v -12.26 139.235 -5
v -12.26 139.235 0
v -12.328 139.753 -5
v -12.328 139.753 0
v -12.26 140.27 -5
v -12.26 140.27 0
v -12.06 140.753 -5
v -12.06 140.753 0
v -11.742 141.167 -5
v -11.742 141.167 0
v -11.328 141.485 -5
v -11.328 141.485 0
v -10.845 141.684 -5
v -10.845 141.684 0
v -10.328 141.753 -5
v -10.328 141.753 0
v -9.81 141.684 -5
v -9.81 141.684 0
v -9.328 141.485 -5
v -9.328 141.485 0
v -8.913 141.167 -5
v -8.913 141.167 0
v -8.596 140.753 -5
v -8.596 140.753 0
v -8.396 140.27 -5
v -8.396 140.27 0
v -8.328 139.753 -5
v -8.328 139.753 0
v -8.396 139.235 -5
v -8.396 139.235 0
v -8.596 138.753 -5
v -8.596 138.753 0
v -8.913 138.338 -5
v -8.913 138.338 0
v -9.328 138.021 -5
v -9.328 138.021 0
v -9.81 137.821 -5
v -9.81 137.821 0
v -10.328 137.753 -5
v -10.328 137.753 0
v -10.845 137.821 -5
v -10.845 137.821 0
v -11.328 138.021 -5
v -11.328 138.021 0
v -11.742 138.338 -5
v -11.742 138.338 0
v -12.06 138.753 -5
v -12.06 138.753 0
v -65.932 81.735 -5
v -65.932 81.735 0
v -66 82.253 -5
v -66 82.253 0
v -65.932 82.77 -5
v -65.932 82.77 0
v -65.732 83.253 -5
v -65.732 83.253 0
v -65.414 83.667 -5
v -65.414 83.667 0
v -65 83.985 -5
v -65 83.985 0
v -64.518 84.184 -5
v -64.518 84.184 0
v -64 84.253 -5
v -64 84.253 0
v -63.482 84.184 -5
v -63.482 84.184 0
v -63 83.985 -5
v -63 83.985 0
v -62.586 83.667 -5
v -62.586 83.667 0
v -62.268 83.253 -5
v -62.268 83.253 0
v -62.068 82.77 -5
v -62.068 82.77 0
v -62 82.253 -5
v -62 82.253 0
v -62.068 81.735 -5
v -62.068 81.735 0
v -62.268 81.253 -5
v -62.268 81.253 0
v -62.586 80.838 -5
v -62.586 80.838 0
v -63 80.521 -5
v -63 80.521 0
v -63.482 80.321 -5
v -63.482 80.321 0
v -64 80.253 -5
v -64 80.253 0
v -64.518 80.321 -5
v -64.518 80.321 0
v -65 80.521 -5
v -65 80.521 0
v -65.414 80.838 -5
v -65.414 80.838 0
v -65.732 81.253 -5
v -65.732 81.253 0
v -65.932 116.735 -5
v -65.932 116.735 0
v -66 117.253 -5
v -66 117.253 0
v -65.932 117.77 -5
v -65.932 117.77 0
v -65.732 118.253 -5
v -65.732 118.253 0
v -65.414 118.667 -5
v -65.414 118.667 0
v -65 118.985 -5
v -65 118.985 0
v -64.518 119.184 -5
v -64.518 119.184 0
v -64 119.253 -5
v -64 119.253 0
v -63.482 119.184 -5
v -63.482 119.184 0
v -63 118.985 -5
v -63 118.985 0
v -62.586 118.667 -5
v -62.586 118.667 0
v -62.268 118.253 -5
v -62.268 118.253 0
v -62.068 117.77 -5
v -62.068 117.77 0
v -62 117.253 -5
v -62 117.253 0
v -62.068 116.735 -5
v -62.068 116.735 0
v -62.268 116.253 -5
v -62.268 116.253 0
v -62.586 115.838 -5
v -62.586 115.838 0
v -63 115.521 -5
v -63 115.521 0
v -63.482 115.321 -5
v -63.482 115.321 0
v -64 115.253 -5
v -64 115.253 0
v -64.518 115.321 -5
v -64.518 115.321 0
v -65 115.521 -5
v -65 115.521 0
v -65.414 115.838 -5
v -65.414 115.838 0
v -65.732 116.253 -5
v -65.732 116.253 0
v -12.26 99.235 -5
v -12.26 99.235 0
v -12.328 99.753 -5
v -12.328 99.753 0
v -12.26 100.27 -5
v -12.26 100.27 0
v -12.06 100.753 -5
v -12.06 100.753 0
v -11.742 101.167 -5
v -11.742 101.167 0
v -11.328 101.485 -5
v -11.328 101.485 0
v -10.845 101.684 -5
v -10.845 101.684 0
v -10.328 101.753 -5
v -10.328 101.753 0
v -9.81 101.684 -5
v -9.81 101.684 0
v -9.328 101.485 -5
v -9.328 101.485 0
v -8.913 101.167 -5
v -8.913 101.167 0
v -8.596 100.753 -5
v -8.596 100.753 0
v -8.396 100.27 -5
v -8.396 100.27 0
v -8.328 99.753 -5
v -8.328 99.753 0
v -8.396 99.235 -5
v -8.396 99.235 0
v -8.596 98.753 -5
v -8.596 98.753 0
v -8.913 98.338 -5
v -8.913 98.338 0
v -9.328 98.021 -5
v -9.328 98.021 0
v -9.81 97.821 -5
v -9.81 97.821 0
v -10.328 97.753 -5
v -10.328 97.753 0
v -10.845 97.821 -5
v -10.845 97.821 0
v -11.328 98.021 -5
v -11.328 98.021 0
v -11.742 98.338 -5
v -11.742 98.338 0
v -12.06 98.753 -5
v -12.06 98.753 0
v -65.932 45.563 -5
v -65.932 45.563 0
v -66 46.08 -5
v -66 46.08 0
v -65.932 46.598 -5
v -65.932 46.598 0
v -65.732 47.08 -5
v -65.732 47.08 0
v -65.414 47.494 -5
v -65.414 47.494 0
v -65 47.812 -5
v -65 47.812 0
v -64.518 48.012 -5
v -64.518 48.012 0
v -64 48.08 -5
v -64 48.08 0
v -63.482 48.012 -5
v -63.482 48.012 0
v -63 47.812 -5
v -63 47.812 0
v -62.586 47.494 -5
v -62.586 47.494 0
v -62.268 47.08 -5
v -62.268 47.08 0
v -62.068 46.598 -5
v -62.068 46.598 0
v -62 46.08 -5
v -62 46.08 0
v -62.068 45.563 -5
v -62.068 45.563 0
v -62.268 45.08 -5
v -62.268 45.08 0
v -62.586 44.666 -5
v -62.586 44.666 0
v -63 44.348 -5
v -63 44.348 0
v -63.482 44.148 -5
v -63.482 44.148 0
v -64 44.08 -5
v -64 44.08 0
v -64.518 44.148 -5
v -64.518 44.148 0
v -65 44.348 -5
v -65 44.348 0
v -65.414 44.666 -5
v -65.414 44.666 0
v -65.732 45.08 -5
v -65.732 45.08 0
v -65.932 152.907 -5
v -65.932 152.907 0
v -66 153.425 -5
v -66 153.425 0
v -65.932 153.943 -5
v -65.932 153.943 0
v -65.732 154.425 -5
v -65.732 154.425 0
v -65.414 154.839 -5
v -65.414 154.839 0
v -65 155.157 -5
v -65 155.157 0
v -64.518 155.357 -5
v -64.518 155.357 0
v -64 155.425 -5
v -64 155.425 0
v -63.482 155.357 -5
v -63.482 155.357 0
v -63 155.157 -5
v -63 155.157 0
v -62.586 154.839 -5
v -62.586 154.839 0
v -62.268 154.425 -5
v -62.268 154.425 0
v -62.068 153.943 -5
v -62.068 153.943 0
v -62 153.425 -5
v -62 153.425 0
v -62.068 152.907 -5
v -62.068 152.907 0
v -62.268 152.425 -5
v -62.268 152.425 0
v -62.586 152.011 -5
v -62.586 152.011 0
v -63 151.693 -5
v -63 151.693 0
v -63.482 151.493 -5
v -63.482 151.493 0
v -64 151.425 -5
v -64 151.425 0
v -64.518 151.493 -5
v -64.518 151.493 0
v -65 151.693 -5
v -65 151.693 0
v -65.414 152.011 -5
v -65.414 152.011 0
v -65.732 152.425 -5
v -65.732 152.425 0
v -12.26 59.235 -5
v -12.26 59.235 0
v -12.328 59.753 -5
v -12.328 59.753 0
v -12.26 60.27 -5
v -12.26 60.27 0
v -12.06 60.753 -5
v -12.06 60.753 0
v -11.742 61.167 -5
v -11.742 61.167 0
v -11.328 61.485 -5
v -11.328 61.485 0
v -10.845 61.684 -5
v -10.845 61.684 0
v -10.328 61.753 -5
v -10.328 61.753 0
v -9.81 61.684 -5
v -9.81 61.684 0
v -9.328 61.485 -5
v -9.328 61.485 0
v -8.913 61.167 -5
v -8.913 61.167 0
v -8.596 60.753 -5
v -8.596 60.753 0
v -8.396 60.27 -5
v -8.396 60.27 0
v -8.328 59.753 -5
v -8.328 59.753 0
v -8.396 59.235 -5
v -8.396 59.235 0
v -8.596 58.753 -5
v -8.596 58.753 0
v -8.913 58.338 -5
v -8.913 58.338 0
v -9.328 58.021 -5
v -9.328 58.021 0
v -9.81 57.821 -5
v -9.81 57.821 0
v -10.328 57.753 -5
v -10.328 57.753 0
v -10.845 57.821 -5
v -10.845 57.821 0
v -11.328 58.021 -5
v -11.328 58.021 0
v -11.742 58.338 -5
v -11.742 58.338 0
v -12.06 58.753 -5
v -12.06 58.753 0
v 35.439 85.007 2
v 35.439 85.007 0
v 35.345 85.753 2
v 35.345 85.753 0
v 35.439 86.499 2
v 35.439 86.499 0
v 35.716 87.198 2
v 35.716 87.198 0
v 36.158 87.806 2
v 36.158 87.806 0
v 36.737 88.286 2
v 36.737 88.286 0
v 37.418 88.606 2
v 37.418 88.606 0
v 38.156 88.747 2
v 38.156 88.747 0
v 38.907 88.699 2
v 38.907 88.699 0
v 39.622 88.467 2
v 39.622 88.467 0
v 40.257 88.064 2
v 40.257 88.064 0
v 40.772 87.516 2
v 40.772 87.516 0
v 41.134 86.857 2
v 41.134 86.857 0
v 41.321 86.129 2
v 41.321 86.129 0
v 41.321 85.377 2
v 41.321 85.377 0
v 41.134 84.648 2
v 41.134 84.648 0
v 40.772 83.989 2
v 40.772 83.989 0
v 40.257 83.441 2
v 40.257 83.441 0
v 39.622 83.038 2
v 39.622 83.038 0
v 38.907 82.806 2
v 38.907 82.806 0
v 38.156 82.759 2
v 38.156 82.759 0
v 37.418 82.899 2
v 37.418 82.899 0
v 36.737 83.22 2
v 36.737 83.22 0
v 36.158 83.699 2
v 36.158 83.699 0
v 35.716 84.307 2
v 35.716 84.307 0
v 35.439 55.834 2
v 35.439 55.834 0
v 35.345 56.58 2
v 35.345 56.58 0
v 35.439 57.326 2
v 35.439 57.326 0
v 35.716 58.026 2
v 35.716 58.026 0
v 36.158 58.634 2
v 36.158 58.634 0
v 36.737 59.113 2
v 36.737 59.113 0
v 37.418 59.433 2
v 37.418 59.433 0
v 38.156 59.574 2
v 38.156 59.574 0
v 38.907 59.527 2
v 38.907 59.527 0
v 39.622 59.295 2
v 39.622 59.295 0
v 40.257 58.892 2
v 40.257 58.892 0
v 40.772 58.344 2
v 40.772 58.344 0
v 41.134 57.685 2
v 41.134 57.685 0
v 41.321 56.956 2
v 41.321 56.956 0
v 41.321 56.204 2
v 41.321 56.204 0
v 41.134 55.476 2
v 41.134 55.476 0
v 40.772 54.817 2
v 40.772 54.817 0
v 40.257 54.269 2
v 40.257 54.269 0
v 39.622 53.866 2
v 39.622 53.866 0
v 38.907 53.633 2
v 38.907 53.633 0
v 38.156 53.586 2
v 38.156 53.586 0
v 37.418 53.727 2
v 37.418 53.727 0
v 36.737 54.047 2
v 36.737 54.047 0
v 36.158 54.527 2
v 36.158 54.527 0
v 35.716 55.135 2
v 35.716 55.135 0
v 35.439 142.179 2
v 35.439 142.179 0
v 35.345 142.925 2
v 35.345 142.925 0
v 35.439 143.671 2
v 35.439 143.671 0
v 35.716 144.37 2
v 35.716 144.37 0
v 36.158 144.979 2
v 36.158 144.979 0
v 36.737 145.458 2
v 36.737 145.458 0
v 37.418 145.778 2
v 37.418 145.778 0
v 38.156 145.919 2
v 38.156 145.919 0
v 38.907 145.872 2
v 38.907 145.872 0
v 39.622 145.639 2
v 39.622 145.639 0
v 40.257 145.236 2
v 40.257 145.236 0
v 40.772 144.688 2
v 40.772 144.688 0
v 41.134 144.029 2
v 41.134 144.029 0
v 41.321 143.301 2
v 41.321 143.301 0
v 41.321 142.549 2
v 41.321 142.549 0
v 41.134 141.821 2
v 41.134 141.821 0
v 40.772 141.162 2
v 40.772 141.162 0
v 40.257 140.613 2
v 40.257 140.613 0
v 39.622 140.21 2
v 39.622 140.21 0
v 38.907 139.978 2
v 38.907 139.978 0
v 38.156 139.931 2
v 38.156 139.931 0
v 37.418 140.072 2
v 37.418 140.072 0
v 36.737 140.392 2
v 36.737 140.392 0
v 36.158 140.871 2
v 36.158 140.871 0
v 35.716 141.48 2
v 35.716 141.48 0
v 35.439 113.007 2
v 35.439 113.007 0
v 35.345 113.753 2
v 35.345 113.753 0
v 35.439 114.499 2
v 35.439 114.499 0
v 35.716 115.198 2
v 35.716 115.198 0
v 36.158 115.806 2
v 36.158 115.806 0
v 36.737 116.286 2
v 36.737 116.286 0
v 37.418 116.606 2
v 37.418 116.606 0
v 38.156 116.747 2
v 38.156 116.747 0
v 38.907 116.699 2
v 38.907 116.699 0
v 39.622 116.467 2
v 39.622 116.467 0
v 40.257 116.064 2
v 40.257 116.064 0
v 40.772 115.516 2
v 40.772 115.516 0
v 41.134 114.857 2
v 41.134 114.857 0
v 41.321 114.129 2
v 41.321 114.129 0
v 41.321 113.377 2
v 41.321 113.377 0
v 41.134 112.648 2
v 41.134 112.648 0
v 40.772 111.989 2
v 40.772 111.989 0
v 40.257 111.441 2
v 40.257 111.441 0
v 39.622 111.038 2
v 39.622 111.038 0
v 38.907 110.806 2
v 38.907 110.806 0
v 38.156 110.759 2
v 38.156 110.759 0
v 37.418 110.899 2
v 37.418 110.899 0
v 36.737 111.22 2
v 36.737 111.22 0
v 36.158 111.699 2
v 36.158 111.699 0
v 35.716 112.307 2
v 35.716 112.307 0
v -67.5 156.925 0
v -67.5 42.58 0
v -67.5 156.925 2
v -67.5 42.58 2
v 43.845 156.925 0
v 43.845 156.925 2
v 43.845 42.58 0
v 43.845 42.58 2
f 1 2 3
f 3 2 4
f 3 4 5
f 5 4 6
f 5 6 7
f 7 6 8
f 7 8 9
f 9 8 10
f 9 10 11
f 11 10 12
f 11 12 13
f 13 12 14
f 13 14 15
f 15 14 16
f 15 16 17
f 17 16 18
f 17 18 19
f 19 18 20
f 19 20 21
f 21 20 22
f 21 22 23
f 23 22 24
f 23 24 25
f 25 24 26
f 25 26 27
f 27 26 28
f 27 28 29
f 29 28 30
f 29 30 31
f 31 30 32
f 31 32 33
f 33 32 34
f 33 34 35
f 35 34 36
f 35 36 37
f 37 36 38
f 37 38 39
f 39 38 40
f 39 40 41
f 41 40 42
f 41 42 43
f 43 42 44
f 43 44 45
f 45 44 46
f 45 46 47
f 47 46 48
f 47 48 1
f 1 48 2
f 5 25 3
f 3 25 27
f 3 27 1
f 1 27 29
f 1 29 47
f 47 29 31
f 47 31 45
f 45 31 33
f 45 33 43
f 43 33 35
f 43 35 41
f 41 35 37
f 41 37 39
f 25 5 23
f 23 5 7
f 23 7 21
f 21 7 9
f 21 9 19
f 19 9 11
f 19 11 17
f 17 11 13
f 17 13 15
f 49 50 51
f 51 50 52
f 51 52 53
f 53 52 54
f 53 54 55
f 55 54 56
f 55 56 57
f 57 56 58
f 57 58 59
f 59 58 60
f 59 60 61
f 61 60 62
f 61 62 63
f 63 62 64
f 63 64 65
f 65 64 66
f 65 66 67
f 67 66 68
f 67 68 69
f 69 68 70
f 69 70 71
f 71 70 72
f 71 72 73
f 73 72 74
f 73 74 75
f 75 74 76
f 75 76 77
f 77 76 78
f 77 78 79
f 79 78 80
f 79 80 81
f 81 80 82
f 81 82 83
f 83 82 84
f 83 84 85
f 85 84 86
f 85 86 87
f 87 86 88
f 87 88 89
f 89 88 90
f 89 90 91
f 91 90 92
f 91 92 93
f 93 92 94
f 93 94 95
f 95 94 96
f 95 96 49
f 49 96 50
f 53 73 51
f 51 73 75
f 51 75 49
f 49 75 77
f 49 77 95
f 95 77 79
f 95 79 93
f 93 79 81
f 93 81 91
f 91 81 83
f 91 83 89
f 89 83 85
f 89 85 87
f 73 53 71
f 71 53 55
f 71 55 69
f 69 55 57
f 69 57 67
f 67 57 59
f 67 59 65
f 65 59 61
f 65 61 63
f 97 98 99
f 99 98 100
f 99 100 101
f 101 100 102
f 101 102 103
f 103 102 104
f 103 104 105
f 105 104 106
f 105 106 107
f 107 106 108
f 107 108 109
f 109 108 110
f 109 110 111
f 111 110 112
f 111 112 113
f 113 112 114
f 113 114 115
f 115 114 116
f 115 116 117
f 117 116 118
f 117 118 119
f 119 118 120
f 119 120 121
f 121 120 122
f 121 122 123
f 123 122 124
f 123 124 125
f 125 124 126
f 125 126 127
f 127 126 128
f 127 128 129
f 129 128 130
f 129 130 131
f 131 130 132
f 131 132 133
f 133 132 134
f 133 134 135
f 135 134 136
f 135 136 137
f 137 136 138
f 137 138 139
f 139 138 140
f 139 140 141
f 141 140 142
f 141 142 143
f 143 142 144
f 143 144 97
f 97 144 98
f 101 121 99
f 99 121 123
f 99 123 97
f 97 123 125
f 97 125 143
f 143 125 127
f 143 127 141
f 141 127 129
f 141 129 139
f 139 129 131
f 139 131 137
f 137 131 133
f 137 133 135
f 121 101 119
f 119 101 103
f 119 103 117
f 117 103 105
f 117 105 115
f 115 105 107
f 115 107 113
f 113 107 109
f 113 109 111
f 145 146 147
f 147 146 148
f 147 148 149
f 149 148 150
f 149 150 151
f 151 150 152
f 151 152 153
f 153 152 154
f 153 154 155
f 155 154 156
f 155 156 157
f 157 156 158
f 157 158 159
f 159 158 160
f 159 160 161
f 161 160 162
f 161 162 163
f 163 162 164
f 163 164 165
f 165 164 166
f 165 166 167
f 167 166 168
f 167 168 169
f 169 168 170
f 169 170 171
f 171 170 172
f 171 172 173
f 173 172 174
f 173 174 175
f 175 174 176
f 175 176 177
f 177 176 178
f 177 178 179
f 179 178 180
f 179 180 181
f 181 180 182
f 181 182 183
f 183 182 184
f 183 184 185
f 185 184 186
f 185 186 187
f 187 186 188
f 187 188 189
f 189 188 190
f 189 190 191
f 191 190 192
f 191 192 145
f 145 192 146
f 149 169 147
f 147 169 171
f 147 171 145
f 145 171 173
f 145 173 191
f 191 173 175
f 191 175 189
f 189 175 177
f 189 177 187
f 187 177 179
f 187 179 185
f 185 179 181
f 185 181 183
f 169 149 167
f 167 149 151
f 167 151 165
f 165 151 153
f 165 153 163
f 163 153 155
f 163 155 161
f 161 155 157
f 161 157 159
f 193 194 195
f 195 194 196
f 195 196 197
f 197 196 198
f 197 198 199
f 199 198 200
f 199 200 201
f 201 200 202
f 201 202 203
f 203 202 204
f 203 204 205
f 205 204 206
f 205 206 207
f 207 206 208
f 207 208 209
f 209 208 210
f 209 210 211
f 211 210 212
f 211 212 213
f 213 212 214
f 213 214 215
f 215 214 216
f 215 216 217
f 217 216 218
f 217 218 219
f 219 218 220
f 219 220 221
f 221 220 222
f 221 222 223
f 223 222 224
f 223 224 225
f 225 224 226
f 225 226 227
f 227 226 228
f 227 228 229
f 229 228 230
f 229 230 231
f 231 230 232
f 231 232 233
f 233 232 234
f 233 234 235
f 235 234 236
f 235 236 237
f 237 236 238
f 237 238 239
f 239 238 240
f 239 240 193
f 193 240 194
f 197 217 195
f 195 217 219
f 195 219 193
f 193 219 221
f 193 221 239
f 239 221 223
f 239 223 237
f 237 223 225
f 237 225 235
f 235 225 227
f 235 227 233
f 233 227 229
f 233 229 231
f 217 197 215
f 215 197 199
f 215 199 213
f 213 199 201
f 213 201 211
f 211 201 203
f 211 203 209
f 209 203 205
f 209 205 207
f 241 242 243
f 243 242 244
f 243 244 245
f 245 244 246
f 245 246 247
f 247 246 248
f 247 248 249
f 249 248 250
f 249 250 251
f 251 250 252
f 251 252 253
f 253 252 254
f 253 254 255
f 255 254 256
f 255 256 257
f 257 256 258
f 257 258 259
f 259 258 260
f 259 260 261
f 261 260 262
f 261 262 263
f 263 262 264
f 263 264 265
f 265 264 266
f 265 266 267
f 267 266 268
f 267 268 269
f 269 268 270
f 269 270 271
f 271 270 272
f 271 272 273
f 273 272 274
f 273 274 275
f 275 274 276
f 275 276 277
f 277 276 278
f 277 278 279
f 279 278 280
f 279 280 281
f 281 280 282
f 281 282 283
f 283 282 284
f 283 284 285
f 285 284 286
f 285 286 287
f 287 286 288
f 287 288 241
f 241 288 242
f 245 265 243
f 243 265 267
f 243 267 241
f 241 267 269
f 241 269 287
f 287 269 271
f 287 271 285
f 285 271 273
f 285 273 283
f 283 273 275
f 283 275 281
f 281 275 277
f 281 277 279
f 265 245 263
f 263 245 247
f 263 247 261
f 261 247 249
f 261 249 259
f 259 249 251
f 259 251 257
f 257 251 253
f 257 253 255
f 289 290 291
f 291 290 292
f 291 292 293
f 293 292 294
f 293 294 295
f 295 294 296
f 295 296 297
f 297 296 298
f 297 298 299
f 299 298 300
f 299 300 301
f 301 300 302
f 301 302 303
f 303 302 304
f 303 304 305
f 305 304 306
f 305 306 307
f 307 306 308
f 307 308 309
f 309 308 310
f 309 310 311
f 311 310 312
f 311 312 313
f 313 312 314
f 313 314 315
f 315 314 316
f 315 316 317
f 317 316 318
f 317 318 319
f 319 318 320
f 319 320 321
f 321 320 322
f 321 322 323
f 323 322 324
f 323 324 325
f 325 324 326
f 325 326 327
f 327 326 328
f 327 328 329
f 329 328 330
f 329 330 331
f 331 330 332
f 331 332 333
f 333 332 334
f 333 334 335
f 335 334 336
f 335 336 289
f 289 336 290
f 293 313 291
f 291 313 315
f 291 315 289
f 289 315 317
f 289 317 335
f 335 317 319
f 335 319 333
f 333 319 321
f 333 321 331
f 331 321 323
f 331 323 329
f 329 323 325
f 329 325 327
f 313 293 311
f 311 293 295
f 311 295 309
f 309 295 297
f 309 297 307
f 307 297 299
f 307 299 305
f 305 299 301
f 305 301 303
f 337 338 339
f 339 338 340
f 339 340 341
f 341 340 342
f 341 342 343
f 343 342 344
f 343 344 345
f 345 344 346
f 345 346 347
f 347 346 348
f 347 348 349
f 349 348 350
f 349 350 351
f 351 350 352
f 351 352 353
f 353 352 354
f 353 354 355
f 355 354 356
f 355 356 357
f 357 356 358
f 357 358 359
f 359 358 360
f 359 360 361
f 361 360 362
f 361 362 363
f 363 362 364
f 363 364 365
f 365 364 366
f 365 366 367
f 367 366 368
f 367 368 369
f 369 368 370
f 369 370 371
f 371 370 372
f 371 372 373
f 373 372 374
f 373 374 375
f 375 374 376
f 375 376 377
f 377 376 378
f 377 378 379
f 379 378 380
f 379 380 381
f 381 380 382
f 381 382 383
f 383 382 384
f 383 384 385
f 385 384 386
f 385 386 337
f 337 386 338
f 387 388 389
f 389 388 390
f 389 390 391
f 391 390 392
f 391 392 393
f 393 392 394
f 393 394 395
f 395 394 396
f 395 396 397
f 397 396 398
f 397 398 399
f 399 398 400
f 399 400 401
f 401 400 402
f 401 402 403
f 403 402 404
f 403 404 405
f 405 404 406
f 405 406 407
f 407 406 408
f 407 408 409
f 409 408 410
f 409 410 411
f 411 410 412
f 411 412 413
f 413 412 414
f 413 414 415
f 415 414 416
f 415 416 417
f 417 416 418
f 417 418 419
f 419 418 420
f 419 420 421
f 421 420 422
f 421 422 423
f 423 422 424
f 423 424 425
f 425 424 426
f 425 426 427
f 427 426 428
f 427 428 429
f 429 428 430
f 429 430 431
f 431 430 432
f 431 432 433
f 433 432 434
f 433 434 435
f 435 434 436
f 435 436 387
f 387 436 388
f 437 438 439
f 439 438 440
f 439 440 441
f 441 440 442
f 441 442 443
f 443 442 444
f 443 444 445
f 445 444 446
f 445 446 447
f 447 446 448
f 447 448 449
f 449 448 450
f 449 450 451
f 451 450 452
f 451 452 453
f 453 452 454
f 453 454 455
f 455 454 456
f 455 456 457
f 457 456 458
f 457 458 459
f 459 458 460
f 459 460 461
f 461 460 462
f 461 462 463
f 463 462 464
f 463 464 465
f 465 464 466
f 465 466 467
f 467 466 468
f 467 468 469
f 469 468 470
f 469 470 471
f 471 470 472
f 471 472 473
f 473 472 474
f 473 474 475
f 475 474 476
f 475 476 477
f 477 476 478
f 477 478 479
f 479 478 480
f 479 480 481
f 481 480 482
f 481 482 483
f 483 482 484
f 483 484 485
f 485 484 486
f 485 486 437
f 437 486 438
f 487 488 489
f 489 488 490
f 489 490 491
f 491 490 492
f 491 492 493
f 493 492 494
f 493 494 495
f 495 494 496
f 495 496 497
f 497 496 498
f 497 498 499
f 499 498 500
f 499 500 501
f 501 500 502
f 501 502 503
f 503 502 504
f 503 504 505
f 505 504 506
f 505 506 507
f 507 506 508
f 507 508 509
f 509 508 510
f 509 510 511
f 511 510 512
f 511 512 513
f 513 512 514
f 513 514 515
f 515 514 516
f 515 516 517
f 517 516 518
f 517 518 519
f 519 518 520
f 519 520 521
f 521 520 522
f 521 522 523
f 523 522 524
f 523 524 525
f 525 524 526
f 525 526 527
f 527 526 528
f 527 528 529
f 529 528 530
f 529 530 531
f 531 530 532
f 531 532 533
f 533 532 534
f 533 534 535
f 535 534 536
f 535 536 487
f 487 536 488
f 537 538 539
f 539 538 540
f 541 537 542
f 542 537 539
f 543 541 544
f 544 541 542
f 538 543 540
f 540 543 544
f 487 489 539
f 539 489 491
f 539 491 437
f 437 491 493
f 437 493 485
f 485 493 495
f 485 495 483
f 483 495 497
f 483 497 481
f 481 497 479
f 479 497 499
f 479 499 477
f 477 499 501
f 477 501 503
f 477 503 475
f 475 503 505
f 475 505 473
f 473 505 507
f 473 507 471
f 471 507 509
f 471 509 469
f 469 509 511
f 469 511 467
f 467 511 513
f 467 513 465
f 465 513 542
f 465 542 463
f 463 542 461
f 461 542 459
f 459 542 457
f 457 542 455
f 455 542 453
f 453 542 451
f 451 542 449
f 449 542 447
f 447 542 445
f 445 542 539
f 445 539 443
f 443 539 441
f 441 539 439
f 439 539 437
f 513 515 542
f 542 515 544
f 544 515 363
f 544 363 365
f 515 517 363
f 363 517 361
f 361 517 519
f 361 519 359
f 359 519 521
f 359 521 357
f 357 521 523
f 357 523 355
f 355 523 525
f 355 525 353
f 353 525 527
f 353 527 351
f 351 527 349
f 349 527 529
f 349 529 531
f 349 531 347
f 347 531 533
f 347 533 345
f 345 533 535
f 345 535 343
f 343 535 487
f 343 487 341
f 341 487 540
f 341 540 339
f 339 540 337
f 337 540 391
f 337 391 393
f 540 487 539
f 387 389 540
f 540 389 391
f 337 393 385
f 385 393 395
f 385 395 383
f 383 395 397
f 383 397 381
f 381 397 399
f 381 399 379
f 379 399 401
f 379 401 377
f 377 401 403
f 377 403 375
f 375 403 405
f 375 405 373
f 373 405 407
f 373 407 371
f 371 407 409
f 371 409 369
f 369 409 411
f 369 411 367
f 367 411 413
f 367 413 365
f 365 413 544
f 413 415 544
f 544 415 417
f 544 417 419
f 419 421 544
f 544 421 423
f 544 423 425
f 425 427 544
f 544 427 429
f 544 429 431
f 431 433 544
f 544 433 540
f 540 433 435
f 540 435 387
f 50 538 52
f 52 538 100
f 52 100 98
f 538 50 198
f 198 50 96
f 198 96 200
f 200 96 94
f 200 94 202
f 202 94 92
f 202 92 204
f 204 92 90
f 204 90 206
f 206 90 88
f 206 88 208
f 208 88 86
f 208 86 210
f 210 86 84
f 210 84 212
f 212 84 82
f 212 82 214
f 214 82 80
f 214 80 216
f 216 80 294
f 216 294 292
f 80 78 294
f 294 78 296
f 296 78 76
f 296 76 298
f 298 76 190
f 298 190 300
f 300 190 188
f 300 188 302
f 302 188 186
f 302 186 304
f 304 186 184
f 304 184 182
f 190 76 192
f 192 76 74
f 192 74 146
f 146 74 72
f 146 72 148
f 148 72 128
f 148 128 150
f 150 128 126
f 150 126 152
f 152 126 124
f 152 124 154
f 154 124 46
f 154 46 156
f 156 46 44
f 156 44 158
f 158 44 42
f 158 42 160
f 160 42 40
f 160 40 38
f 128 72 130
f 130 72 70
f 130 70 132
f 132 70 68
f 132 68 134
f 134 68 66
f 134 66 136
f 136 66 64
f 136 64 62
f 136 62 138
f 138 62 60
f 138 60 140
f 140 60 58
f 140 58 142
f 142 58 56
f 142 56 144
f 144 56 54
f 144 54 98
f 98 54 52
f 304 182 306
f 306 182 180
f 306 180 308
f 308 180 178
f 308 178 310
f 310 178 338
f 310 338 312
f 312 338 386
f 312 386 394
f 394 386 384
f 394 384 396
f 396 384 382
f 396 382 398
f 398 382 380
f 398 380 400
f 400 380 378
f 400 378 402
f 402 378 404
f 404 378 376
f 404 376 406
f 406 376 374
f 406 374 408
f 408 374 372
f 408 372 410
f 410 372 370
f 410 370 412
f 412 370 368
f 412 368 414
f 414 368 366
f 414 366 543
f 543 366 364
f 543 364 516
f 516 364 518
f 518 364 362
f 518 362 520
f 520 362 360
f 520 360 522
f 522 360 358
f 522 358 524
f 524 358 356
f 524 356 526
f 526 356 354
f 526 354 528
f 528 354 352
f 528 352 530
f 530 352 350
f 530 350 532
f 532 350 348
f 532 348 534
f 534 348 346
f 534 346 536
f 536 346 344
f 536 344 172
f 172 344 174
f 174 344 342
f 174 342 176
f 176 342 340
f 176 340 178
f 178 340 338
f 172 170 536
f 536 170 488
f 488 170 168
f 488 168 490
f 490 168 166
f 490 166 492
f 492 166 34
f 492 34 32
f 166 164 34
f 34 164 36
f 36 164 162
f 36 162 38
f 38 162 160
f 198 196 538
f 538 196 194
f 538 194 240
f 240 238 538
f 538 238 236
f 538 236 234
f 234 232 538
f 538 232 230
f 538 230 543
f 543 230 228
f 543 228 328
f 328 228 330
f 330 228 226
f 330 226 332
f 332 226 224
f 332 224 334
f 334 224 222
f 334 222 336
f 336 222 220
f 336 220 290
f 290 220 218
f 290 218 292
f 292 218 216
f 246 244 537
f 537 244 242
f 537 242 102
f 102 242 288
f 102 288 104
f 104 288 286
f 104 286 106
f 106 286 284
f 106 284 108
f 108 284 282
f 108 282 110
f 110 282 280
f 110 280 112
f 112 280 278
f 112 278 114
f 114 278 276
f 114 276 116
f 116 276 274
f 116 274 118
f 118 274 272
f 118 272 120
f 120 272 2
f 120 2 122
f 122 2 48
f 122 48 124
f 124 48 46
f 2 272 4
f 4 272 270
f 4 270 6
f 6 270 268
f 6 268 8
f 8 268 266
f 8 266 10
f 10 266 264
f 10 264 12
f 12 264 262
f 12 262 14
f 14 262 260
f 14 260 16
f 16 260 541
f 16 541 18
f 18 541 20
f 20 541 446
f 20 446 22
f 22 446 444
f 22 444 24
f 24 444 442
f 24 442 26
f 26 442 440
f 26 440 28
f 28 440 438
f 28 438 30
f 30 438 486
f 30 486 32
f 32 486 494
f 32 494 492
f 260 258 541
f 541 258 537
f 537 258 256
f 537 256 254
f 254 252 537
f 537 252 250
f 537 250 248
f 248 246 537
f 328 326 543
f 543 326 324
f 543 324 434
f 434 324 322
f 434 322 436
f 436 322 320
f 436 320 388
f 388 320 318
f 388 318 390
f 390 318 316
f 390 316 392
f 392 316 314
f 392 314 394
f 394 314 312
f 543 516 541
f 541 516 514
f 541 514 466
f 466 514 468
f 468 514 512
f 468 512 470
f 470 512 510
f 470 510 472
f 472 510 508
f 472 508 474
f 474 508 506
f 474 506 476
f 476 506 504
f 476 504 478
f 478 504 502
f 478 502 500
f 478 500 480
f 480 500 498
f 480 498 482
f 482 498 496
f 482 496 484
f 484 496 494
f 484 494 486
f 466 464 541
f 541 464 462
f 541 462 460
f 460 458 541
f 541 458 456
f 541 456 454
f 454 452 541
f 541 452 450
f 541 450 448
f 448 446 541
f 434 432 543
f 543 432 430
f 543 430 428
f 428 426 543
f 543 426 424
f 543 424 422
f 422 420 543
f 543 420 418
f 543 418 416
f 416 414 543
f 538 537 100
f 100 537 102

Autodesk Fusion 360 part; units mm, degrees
sketch "Sketch1" plane through (0, 0, 0) normal (0, 0, 1) x (1, 0, 0)
  line L0 (46.8447, 156.9249) -> (-67.5, 156.9249)
  line L1 (-67.5, 156.9249) -> (-67.5, 42.5803)
  line L2 (43.8447, 42.5803) -> (43.8447, 156.9249)
  line L3 (-67.5, 42.5803) -> (46.8447, 42.5803)
  circle A0 centre (38.3447, 142.9249) radius 3
  circle A1 centre (38.3447, 113.7526) radius 3
  circle A2 centre (38.3447, 85.7526) radius 3
  circle A3 centre (38.3447, 56.5803) radius 3
  circle A4 centre (-10.3277, 59.7526) radius 2
  circle A5 centre (-64, 46.0803) radius 2
  circle A6 centre (-64, 82.2526) radius 2
  circle A7 centre (-10.3277, 99.7526) radius 2
  circle A8 centre (-10.3277, 139.7526) radius 2
  circle A9 centre (-64, 153.4249) radius 2
  circle A10 centre (-64, 117.2526) radius 2
  dimension "d687" = 6
  dimension "d688" = 4
  dimension "d689" = 10.3277
  dimension "d690" = 54.1723
  dimension "d691" = 53.6723
  dimension "d692" = 48.6723
  dimension "d693" = 114.3447
  dimension "d694" = 57.1723
  dimension "d695" = 17.1723
  dimension "d696" = 97.1723
  dimension "d697" = 57.1723
  dimension "d698" = 59.7526
  dimension "d699" = 93.6723
  dimension "d700" = 83.1723
  dimension "d701" = 80
  dimension "d702" = 57.5
  dimension "d703" = 54
  dimension "d704" = 26
  dimension "d705" = 22.5
  dimension "d706" = 13.6723
  dimension "d707" = 3.1723
extrude "Extrude1" add sketch "Sketch1" along normal blind 2 contours L0 L1 L2 L3 | A4 | A5 | A6 | A7 | A8 | A9 | A10
extrude "Extrude2" add sketch "Sketch1" against normal blind 5 contours A4 | A5 | A6 | A7 | A8 | A9 | A10
